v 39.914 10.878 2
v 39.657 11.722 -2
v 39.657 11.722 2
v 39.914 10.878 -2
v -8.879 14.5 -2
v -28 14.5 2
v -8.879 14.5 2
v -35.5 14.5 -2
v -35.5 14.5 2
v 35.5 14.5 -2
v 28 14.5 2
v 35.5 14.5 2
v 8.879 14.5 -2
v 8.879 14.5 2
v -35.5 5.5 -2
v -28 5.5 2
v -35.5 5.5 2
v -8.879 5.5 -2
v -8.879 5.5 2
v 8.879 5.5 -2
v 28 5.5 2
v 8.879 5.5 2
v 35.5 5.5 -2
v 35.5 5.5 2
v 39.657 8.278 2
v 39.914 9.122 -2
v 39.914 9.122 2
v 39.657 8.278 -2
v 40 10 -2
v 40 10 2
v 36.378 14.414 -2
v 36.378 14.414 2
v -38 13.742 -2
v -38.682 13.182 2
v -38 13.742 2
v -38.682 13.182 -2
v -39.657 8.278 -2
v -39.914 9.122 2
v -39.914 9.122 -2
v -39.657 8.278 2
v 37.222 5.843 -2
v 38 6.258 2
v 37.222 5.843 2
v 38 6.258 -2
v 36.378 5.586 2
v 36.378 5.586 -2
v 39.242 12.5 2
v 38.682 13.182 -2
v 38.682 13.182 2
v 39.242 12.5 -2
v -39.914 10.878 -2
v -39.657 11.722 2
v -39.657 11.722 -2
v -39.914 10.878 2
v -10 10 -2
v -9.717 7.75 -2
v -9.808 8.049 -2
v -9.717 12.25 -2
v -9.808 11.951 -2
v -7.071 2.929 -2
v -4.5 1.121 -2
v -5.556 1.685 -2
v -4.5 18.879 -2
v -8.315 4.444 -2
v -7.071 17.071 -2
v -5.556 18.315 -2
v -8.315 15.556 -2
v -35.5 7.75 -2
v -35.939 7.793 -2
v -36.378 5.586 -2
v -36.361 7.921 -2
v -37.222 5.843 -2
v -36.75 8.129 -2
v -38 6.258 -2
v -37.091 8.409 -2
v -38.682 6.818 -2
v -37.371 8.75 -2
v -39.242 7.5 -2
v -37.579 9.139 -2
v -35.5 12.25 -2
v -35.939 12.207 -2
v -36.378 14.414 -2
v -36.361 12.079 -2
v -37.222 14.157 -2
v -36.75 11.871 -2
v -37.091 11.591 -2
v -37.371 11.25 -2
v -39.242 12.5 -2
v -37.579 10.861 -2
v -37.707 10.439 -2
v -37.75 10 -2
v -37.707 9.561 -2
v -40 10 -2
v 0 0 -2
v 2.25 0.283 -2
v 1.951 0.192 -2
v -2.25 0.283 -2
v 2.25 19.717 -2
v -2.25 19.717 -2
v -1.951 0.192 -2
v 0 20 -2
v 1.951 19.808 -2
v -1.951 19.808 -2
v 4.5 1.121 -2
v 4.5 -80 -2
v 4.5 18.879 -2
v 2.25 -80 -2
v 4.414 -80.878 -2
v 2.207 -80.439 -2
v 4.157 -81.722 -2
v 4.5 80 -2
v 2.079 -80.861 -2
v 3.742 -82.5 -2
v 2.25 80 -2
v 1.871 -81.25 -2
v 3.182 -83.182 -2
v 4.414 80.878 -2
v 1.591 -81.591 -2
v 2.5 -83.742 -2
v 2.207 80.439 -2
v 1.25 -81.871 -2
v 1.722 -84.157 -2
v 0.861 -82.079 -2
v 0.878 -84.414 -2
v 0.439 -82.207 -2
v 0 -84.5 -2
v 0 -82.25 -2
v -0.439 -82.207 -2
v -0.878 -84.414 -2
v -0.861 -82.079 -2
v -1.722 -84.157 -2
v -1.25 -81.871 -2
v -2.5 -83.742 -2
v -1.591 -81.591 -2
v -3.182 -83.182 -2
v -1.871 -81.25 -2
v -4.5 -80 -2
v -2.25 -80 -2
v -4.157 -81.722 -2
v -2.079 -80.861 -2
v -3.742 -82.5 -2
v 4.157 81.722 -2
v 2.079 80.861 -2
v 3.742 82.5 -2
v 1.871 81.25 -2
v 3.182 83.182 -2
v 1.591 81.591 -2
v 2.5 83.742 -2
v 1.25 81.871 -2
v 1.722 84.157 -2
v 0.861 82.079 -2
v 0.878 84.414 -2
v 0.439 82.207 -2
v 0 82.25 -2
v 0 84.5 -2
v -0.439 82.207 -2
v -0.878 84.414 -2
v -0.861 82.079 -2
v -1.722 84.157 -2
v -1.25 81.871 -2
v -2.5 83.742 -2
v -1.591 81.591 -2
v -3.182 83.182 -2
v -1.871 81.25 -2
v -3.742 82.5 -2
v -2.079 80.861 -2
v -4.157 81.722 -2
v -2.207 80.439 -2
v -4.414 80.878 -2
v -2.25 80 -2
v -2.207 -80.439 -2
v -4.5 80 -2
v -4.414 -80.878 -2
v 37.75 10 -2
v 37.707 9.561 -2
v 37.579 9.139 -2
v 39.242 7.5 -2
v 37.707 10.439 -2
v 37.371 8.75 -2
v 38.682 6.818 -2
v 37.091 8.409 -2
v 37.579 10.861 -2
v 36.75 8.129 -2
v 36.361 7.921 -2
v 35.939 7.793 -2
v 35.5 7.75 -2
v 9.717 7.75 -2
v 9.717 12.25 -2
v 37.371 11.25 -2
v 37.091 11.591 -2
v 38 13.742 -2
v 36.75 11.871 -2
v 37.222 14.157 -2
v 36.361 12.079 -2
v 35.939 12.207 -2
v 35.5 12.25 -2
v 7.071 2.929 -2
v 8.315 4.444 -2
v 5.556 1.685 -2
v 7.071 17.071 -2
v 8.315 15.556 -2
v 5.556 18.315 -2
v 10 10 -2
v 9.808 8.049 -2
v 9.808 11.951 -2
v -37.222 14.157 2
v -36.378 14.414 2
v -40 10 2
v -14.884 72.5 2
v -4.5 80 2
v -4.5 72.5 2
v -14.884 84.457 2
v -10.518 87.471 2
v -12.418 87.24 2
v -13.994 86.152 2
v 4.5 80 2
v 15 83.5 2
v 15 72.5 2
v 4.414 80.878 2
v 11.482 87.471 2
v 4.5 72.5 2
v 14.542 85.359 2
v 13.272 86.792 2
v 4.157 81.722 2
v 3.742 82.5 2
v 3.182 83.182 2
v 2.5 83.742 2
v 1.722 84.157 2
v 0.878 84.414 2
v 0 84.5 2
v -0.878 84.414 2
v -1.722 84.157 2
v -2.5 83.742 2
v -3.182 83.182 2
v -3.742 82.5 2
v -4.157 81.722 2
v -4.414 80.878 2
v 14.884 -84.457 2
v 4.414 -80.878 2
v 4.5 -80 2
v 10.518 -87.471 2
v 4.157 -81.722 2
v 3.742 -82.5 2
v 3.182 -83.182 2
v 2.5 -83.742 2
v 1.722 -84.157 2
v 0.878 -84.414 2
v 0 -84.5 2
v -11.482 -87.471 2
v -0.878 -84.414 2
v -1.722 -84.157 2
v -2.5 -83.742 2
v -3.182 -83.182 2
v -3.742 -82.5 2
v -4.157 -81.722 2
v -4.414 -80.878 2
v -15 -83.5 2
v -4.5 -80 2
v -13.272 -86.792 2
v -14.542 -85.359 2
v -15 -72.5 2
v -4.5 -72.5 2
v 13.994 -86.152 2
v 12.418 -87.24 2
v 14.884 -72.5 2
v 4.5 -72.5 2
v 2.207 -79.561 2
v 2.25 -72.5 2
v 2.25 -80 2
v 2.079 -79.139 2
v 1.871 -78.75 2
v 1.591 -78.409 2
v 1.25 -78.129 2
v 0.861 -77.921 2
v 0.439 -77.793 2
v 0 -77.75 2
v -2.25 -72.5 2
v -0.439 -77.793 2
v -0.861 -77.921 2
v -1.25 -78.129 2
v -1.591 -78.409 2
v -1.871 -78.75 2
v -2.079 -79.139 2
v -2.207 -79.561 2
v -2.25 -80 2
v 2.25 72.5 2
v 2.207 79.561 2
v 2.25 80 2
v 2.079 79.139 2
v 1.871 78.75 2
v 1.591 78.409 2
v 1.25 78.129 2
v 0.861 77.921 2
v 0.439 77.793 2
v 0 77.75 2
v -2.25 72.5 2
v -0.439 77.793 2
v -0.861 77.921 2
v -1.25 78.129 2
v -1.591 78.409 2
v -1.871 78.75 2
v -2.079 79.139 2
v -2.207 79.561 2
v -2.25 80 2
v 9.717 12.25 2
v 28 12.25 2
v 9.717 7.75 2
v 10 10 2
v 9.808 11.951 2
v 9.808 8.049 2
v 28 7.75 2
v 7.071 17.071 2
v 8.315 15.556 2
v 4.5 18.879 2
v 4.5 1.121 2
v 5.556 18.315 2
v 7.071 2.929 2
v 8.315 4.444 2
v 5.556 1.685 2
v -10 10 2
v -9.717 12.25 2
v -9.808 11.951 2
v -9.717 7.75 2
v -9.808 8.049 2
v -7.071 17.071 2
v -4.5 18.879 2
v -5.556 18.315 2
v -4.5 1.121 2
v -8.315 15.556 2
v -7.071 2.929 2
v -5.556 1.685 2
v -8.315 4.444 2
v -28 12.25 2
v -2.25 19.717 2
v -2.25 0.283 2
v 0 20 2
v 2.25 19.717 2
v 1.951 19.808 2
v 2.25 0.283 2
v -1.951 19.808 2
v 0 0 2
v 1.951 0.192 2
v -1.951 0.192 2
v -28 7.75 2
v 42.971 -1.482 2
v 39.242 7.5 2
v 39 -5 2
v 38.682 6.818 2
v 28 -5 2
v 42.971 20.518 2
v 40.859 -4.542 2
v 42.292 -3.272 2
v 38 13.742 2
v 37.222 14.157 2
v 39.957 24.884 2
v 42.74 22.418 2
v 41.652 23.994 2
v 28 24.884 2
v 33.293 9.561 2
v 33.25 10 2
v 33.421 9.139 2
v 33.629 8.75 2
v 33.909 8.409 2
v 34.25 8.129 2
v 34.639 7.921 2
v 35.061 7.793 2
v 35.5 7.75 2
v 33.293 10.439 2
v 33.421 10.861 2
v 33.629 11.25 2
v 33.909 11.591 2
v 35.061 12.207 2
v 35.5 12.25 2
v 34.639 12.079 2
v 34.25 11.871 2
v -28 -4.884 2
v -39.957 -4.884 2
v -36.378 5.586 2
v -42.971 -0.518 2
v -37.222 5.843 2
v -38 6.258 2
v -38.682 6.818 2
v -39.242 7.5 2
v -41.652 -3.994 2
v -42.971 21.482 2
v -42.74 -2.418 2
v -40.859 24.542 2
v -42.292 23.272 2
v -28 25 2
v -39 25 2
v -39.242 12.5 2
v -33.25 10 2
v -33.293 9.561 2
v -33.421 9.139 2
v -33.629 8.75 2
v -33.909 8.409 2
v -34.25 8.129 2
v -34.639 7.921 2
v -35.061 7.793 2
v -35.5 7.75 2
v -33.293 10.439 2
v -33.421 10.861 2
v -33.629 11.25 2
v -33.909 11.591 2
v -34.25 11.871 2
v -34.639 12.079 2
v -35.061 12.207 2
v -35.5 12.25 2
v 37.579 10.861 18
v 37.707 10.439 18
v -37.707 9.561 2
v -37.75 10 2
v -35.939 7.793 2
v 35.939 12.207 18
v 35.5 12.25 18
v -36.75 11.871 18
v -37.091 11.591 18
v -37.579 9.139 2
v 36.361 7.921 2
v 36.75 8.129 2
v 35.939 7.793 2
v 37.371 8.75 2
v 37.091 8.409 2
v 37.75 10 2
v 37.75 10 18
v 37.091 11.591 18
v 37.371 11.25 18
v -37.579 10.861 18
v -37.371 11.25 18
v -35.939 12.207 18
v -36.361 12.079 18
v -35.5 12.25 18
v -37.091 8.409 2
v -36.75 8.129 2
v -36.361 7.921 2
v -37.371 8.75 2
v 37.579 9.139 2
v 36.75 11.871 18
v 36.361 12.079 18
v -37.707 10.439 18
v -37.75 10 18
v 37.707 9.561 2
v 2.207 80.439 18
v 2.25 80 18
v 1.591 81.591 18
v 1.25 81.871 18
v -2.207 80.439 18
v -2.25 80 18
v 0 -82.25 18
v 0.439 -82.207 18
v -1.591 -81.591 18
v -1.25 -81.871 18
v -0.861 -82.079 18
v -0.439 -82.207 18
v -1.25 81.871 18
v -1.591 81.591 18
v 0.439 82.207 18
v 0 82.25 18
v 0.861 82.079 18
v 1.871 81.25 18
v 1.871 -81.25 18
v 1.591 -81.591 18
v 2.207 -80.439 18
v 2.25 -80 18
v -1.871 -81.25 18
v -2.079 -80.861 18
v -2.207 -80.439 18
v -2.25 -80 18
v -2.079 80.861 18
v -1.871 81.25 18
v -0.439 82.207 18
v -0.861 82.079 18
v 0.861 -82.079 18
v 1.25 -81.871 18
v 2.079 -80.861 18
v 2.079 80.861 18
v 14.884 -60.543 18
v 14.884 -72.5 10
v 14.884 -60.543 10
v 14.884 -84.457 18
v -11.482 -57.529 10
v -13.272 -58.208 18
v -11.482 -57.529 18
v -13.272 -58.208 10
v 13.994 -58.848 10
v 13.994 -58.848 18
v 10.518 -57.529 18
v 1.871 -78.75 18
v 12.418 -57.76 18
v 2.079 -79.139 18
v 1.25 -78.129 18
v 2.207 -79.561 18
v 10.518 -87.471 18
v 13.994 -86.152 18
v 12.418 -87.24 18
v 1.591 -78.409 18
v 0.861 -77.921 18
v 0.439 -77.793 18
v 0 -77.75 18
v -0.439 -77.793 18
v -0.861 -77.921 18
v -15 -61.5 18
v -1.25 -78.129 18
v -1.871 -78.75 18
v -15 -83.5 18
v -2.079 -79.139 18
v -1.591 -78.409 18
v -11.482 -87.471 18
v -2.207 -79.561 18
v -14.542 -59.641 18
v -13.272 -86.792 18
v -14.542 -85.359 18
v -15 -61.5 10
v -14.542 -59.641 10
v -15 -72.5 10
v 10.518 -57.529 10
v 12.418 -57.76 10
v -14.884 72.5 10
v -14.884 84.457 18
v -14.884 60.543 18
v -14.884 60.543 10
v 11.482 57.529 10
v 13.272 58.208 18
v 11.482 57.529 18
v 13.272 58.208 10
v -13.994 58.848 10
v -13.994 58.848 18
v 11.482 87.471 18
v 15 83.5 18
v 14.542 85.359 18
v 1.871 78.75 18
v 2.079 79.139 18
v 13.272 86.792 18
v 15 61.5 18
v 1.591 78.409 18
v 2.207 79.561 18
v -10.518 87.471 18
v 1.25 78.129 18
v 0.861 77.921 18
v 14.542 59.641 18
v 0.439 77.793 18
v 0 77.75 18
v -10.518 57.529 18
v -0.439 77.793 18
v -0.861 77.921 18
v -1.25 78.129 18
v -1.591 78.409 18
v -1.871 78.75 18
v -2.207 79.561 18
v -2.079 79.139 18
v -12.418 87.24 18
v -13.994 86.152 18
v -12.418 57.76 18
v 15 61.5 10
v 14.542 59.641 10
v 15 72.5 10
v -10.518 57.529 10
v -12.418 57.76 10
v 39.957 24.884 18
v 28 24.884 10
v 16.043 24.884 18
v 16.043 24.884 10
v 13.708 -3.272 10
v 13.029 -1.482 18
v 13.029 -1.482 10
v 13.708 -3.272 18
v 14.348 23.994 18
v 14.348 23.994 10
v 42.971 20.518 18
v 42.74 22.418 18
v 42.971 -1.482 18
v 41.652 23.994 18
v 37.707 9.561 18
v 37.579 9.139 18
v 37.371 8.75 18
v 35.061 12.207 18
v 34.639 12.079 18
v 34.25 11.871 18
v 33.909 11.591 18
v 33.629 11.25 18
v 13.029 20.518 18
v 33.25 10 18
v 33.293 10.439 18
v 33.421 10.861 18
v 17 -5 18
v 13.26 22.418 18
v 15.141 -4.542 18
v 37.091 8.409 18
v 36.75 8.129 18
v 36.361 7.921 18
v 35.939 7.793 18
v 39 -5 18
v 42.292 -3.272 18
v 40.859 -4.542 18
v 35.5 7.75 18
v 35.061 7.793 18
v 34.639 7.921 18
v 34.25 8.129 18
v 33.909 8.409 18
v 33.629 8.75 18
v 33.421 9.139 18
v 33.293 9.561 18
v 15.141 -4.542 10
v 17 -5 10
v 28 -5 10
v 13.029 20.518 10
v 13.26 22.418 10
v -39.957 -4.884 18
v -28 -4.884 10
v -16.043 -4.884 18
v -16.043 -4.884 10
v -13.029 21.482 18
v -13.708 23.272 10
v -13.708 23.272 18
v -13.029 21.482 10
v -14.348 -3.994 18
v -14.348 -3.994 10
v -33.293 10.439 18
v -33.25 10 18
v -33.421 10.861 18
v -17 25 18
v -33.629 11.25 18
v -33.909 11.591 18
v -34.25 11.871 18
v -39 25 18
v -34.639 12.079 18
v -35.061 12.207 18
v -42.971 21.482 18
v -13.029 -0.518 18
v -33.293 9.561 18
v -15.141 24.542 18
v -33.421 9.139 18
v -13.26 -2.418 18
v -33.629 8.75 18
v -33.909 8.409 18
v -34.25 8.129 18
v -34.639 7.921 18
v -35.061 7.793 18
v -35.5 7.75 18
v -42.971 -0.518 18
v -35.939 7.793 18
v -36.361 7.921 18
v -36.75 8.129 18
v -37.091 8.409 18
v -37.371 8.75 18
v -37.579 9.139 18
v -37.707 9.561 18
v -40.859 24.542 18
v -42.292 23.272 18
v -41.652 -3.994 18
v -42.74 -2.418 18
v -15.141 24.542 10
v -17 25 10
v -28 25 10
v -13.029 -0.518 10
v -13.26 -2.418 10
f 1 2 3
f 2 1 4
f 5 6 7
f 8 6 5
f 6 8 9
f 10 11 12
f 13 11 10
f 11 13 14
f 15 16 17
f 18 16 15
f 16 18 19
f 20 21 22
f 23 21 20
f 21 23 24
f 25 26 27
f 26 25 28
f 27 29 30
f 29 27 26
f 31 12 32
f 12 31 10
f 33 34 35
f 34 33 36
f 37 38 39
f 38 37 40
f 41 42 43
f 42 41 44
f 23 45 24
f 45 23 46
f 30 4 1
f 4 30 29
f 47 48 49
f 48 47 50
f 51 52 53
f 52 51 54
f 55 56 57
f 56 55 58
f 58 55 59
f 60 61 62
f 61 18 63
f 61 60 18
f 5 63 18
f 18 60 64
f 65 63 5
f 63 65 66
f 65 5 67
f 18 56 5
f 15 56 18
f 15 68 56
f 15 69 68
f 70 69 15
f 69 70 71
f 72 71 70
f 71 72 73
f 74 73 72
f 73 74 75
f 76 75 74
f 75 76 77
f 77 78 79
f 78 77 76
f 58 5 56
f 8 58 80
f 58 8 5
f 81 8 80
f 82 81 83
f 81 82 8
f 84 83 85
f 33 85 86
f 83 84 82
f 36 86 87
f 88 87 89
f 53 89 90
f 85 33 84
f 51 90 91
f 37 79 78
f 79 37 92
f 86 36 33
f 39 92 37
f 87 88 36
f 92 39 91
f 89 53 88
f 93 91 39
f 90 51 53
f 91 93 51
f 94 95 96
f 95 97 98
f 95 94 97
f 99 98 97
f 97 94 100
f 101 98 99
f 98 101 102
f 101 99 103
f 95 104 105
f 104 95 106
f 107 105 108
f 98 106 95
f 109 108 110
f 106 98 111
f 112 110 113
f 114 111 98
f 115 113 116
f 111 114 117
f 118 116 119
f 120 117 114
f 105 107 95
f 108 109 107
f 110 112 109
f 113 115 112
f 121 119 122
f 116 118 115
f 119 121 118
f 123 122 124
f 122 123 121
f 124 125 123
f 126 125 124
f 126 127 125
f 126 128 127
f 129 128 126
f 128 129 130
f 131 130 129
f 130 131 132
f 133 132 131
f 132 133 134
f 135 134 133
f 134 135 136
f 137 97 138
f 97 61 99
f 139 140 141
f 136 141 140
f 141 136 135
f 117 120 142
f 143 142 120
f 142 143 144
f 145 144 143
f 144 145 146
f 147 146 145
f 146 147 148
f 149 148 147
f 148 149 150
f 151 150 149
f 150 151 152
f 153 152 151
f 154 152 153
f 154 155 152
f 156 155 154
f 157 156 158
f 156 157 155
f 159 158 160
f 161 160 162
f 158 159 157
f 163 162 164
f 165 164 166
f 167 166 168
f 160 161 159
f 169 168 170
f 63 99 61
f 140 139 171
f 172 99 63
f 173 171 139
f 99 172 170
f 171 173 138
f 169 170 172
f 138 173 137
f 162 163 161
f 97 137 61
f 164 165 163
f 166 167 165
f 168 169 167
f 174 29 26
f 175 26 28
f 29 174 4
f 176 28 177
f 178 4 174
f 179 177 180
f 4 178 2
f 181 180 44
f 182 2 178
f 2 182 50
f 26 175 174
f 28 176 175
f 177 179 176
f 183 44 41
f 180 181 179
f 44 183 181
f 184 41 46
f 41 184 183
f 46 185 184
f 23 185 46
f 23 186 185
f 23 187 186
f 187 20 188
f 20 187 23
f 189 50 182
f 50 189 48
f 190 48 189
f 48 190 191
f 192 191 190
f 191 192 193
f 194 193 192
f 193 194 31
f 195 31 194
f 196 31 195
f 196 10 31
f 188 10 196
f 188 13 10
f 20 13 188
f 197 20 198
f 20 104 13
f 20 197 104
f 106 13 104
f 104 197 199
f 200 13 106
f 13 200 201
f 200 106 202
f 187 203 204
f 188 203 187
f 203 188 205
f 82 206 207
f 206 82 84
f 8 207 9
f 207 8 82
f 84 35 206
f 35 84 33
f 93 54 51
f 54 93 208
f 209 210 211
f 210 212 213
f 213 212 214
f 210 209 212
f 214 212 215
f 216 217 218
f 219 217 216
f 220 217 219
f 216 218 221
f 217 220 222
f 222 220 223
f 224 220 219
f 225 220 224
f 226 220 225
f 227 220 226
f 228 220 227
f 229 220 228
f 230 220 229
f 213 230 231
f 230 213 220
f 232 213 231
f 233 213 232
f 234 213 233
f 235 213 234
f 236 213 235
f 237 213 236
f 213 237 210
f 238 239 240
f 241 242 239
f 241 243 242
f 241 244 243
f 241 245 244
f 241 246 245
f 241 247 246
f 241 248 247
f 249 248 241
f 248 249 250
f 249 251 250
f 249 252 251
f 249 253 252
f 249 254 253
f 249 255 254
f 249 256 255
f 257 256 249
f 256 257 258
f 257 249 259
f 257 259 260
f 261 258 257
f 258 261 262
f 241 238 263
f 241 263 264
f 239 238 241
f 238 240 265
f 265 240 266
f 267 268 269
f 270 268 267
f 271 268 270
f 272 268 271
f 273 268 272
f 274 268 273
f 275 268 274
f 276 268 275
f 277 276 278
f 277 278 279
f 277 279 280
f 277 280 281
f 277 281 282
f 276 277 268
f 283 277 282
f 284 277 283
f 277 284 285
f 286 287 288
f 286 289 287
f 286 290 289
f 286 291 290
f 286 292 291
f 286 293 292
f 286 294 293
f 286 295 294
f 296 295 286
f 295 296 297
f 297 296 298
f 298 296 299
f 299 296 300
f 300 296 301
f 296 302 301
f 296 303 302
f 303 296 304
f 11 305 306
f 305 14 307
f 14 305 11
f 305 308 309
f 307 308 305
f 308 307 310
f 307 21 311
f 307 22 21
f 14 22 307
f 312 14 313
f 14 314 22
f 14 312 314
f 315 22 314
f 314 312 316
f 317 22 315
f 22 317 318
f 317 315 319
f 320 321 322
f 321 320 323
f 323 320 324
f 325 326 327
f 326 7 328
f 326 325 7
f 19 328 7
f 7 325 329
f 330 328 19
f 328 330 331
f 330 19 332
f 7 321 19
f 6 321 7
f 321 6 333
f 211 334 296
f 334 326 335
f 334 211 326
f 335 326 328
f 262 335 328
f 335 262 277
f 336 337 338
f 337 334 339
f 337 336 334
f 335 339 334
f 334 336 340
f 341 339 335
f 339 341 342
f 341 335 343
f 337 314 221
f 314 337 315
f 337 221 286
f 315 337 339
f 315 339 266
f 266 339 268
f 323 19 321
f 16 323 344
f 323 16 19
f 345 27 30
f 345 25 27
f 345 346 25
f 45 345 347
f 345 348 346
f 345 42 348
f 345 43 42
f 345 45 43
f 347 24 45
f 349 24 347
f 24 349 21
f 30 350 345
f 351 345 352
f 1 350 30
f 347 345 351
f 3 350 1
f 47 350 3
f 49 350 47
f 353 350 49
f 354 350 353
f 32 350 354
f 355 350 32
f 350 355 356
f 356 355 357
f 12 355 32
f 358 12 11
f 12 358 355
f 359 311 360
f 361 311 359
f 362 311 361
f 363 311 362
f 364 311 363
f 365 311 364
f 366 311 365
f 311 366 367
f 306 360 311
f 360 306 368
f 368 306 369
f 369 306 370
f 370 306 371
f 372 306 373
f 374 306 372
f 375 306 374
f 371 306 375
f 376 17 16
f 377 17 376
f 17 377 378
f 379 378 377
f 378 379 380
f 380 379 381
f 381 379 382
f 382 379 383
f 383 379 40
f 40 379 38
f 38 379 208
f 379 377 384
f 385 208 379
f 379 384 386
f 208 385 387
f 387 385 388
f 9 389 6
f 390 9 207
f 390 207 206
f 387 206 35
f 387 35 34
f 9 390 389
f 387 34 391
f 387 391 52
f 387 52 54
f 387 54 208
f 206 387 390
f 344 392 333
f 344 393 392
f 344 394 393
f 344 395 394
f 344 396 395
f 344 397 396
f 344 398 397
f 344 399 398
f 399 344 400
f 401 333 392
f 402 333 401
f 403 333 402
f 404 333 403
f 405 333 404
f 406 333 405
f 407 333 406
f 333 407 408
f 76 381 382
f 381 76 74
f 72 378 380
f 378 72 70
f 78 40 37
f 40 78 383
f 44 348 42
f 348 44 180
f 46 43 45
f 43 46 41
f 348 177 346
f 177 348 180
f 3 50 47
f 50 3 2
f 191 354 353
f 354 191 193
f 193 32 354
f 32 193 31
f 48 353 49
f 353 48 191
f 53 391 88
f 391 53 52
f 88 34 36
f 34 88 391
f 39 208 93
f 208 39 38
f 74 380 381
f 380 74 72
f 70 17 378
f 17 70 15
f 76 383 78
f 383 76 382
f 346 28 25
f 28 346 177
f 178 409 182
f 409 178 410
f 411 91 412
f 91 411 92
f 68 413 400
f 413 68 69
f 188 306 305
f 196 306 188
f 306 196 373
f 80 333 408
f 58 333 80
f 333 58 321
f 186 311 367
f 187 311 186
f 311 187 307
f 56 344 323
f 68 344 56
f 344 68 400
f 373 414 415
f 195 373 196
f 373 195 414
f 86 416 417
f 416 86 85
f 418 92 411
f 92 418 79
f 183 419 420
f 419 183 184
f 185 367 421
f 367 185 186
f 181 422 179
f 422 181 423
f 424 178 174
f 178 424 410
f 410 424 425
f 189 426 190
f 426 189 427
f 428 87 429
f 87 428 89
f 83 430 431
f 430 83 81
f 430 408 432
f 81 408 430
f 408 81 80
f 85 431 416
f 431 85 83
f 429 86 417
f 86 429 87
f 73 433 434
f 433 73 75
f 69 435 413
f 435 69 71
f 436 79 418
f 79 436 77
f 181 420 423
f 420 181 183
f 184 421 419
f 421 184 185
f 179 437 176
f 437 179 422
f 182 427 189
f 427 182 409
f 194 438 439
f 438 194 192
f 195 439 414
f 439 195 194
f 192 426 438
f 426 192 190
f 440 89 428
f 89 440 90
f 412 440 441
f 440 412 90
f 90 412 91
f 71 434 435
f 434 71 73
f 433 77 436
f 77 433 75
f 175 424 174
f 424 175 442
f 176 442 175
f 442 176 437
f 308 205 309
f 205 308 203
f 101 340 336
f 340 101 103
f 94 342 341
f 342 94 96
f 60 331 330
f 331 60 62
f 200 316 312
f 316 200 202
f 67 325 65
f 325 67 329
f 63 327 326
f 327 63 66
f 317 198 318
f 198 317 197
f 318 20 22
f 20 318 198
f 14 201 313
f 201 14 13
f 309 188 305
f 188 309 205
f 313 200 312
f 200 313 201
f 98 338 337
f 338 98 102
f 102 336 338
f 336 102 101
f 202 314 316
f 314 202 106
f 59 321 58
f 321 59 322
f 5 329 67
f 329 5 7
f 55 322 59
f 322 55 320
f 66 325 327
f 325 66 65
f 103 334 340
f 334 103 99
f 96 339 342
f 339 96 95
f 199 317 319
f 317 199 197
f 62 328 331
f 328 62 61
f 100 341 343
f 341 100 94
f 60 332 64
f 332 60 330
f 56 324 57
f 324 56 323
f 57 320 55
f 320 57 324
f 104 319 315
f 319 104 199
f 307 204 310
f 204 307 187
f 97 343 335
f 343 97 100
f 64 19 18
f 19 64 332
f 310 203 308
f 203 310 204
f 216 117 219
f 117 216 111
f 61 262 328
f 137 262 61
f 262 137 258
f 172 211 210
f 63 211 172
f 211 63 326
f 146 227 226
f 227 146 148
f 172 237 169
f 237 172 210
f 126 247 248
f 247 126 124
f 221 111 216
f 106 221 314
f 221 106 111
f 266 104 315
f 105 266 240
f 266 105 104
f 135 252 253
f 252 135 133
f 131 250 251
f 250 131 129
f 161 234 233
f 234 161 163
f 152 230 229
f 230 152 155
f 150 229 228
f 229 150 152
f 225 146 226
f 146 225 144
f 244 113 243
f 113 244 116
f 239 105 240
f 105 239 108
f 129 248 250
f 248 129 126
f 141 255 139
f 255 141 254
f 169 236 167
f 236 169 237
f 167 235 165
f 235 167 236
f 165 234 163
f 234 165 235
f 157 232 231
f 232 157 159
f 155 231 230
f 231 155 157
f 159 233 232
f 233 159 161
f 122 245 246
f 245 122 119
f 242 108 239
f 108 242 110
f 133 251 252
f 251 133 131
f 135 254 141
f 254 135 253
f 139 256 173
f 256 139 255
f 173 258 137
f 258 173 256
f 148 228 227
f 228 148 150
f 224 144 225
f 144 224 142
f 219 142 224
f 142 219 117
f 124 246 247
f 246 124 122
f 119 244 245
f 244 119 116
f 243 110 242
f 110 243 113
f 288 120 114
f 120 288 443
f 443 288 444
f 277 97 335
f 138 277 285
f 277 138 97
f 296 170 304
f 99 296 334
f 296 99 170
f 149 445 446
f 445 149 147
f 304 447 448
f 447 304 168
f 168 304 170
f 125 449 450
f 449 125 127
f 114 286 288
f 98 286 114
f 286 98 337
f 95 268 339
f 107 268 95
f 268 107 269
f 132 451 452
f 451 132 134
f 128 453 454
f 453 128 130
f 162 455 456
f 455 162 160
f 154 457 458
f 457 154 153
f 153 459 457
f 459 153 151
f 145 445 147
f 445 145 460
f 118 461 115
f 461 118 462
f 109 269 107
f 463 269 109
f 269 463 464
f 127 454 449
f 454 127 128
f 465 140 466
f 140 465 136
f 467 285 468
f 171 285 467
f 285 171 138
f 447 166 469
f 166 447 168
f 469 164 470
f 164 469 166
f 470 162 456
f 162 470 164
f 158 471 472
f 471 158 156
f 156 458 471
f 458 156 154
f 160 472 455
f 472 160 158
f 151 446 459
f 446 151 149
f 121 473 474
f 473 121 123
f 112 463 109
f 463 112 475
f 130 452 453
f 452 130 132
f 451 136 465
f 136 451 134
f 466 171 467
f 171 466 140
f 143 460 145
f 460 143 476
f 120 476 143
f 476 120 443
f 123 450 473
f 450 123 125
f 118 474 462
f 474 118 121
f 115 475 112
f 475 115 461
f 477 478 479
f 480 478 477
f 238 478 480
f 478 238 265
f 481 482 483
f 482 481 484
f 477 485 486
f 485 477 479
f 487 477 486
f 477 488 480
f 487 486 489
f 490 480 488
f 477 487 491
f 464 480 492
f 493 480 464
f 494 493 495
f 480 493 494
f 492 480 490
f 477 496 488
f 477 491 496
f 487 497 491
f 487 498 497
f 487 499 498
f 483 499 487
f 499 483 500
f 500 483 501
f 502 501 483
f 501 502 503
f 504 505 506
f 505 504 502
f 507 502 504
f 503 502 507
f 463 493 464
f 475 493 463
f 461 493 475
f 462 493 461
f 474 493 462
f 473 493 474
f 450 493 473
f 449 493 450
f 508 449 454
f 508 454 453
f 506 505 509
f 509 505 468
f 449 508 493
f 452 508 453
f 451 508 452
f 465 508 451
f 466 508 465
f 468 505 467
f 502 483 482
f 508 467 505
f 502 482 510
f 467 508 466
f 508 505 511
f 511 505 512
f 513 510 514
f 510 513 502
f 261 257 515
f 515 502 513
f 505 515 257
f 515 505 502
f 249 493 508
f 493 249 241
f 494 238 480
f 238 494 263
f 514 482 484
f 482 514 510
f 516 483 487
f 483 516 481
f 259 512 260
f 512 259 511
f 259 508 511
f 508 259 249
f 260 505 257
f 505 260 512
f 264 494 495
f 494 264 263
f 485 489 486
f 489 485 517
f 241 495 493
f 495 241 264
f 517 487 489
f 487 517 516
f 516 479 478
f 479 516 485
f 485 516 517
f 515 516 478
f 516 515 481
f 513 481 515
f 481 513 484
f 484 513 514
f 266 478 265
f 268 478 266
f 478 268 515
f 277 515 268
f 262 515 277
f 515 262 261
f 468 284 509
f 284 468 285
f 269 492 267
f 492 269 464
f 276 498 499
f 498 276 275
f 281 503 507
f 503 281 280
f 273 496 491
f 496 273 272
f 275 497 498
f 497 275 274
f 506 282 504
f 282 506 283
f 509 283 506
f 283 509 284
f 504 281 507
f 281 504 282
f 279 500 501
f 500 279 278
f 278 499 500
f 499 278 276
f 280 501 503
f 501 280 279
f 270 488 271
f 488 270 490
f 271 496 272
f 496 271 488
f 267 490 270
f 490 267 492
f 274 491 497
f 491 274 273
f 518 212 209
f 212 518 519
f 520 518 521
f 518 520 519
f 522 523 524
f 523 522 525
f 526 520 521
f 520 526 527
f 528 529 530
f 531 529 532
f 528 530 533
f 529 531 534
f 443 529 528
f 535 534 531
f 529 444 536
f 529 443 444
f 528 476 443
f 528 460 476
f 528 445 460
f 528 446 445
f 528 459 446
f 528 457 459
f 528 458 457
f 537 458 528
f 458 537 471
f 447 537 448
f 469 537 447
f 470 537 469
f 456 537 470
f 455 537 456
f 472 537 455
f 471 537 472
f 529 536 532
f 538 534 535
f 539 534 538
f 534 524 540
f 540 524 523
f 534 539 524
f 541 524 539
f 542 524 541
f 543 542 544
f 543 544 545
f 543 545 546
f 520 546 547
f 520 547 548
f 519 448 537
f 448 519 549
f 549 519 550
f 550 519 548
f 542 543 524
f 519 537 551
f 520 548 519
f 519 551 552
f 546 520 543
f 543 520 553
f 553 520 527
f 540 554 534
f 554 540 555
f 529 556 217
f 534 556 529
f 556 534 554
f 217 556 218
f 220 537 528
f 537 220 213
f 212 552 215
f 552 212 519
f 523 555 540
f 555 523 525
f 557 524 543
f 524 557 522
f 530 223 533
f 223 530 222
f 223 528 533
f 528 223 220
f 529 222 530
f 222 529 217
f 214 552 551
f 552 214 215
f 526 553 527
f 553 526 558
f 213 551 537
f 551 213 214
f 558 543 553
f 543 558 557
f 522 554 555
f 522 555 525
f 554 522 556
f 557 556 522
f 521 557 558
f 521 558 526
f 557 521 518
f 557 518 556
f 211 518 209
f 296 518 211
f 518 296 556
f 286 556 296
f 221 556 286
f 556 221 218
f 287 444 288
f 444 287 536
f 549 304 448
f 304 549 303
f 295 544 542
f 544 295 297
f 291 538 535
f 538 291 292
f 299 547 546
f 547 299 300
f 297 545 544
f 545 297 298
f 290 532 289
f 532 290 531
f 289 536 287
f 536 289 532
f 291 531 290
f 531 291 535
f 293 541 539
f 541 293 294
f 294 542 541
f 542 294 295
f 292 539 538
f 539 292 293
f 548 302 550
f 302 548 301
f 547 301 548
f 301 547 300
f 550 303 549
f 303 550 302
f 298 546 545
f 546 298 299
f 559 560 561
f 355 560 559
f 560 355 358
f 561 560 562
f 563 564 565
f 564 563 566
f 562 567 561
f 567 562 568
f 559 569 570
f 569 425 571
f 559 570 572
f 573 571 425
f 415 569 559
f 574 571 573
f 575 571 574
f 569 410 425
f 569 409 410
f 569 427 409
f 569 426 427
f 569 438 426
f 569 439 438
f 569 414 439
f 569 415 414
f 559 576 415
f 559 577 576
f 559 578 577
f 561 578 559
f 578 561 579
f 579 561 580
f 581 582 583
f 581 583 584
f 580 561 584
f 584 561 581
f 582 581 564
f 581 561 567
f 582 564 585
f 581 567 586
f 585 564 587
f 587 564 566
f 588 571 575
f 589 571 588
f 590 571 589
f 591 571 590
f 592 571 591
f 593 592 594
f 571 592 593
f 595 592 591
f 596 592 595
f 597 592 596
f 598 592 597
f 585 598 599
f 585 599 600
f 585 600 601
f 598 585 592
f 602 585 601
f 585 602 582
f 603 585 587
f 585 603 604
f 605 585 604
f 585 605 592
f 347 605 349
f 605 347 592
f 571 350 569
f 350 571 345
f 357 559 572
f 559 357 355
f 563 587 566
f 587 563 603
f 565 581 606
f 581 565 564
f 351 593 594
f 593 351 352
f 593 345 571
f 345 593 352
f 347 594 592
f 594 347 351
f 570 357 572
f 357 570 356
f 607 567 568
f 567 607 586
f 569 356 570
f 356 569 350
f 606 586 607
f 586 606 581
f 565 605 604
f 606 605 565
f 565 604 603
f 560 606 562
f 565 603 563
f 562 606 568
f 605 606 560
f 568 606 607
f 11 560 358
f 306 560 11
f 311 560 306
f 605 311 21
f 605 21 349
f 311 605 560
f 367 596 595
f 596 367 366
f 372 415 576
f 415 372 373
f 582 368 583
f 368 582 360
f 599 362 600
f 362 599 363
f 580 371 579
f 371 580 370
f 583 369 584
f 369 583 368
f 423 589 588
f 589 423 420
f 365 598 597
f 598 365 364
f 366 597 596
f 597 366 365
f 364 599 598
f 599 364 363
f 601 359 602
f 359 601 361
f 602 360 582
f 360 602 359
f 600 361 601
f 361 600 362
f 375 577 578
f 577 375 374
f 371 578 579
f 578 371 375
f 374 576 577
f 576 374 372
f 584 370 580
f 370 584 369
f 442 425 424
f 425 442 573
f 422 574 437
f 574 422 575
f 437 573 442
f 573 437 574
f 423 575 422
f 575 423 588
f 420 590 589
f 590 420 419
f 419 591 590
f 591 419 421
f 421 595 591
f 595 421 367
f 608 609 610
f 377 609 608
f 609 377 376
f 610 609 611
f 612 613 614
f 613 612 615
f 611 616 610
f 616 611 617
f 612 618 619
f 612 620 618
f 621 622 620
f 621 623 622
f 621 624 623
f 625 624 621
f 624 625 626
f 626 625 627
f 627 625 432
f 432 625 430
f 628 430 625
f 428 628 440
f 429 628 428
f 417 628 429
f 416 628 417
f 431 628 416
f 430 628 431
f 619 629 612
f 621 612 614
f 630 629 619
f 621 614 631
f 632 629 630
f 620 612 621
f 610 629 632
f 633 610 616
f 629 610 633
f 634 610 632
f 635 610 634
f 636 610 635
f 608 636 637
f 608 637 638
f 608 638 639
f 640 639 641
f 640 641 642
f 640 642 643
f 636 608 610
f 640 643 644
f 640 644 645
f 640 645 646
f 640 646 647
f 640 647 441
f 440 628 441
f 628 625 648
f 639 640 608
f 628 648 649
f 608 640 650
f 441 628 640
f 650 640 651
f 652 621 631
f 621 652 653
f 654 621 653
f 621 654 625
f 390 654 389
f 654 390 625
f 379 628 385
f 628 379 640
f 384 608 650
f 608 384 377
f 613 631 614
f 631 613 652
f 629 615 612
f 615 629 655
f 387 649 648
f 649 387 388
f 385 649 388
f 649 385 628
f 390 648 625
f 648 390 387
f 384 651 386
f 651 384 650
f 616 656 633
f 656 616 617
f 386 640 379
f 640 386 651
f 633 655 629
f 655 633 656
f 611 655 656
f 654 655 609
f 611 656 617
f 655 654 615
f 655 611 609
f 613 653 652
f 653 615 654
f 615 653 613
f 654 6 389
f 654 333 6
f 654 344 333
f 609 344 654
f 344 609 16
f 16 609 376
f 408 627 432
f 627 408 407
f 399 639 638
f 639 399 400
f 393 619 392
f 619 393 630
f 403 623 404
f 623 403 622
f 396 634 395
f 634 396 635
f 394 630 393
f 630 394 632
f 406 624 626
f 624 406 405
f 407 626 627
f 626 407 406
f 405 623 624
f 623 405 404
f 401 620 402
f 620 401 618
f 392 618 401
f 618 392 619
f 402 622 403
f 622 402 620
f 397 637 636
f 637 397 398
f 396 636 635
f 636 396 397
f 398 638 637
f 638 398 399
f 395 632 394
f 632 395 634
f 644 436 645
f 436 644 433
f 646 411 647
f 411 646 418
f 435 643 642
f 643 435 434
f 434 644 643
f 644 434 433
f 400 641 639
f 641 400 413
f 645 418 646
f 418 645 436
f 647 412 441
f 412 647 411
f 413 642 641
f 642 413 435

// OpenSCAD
len_phone = 145;
width_phone = 56;
thickness_phone = 8;
corner_round = 8;

d_screw_m4 = 4.5;
thickness_holder = 4;
append = 15;
w_grip = 30;

holder_set();
// horizontal_block(20);
// vertical_block(len_phone);
//grip();

module grip(){
    difference(){
        grip_base();

        color("red")
        translate([0, w_grip/2, thickness_phone])
        cube([w_grip+1, w_grip, 2*thickness_phone], center=true);
        
        translate ([0, -w_grip/4, 0])
        cylinder(d=d_screw_m4, 3*thickness_phone, center=true, $fn=32);
    }
}

module grip_base() {
    hull() {
        translate([w_grip/2-corner_round/2, -w_grip/2+corner_round/2, 0])
        cylinder(d=corner_round, 2*thickness_phone, center=true);
        translate([-w_grip/2+corner_round/2, -w_grip/2+corner_round/2, 0])
        cylinder(d=corner_round, 2*thickness_phone, center=true);
        translate([w_grip/2-corner_round/2, w_grip/2-corner_round/2, 0])
        cylinder(d=corner_round, 2*thickness_phone, center=true);
        translate([-w_grip/2+corner_round/2, w_grip/2-corner_round/2, 0])
        cylinder(d=corner_round, 2*thickness_phone, center=true);
    }
}

module holder_set() {
    horizontal_block(len_block=width_phone, offset_vertical=10);
    vertical_block(len_block=len_phone);
    
    translate([0, -len_phone/2, thickness_phone+thickness_holder/2])
    rotate([0, 180, 0])
    grip();
    
    translate([0, len_phone/2, thickness_phone+thickness_holder/2])
    rotate([0, 180, 180])
    grip();
    
    translate([width_phone/2, 10, thickness_phone+thickness_holder/2])
    rotate([0, 180, 90])
    grip();
    
    translate([-width_phone/2, 10, thickness_phone+thickness_holder/2])
    rotate([0, 180, -90])
    grip();
    
}

module vertical_block(len_block) {
    len_block = len_block + append;
    difference() {

        hull() {
            //translate([0, -len_phone/2, 0])
            translate([0, -len_block/2, 0])
                cylinder(d=9, h=thickness_holder, center=true, $fn=32);

            //translate([0, len_phone/2, 0])
            translate([0, len_block/2, 0])
                cylinder(d=9, h=thickness_holder, center=true, $fn=32);
        }
        color("red")
        hull() {
            // translate([0, -len_phone/2, 0])
            translate([0, -len_block/2, 0])
                cylinder(d=d_screw_m4, h=thickness_holder+2, center=true, $fn=32);

            // translate([0, len_phone/2, 0])
            translate([0, len_block/2, 0])
                cylinder(d=d_screw_m4, h=thickness_holder+2, center=true, $fn=32);
        }
    }
}

module horizontal_block(len_block, offset_vertical) {
    len_block = len_block + append;
    translate([0, offset_vertical, 0])
    cylinder(d=20, h=thickness_holder, center=true, $fn=32);

    difference() {
        hull() {
            translate([len_block/2, offset_vertical, 0])
                cylinder(d=9, h=thickness_holder, center=true, $fn=32);

            translate([-len_block
/2, offset_vertical, 0])
                cylinder(d=9, h=thickness_holder, center=true, $fn=32);
        }
        color("red")
        hull() {
            translate([len_block/2, offset_vertical,, 0])
                cylinder(d=d_screw_m4, h=thickness_holder+2, center=true, $fn=32);

            translate([-len_block/2, offset_vertical,, 0])
                cylinder(d=d_screw_m4, h=thickness_holder+2, center=true, $fn=32);
        }
    }
}
